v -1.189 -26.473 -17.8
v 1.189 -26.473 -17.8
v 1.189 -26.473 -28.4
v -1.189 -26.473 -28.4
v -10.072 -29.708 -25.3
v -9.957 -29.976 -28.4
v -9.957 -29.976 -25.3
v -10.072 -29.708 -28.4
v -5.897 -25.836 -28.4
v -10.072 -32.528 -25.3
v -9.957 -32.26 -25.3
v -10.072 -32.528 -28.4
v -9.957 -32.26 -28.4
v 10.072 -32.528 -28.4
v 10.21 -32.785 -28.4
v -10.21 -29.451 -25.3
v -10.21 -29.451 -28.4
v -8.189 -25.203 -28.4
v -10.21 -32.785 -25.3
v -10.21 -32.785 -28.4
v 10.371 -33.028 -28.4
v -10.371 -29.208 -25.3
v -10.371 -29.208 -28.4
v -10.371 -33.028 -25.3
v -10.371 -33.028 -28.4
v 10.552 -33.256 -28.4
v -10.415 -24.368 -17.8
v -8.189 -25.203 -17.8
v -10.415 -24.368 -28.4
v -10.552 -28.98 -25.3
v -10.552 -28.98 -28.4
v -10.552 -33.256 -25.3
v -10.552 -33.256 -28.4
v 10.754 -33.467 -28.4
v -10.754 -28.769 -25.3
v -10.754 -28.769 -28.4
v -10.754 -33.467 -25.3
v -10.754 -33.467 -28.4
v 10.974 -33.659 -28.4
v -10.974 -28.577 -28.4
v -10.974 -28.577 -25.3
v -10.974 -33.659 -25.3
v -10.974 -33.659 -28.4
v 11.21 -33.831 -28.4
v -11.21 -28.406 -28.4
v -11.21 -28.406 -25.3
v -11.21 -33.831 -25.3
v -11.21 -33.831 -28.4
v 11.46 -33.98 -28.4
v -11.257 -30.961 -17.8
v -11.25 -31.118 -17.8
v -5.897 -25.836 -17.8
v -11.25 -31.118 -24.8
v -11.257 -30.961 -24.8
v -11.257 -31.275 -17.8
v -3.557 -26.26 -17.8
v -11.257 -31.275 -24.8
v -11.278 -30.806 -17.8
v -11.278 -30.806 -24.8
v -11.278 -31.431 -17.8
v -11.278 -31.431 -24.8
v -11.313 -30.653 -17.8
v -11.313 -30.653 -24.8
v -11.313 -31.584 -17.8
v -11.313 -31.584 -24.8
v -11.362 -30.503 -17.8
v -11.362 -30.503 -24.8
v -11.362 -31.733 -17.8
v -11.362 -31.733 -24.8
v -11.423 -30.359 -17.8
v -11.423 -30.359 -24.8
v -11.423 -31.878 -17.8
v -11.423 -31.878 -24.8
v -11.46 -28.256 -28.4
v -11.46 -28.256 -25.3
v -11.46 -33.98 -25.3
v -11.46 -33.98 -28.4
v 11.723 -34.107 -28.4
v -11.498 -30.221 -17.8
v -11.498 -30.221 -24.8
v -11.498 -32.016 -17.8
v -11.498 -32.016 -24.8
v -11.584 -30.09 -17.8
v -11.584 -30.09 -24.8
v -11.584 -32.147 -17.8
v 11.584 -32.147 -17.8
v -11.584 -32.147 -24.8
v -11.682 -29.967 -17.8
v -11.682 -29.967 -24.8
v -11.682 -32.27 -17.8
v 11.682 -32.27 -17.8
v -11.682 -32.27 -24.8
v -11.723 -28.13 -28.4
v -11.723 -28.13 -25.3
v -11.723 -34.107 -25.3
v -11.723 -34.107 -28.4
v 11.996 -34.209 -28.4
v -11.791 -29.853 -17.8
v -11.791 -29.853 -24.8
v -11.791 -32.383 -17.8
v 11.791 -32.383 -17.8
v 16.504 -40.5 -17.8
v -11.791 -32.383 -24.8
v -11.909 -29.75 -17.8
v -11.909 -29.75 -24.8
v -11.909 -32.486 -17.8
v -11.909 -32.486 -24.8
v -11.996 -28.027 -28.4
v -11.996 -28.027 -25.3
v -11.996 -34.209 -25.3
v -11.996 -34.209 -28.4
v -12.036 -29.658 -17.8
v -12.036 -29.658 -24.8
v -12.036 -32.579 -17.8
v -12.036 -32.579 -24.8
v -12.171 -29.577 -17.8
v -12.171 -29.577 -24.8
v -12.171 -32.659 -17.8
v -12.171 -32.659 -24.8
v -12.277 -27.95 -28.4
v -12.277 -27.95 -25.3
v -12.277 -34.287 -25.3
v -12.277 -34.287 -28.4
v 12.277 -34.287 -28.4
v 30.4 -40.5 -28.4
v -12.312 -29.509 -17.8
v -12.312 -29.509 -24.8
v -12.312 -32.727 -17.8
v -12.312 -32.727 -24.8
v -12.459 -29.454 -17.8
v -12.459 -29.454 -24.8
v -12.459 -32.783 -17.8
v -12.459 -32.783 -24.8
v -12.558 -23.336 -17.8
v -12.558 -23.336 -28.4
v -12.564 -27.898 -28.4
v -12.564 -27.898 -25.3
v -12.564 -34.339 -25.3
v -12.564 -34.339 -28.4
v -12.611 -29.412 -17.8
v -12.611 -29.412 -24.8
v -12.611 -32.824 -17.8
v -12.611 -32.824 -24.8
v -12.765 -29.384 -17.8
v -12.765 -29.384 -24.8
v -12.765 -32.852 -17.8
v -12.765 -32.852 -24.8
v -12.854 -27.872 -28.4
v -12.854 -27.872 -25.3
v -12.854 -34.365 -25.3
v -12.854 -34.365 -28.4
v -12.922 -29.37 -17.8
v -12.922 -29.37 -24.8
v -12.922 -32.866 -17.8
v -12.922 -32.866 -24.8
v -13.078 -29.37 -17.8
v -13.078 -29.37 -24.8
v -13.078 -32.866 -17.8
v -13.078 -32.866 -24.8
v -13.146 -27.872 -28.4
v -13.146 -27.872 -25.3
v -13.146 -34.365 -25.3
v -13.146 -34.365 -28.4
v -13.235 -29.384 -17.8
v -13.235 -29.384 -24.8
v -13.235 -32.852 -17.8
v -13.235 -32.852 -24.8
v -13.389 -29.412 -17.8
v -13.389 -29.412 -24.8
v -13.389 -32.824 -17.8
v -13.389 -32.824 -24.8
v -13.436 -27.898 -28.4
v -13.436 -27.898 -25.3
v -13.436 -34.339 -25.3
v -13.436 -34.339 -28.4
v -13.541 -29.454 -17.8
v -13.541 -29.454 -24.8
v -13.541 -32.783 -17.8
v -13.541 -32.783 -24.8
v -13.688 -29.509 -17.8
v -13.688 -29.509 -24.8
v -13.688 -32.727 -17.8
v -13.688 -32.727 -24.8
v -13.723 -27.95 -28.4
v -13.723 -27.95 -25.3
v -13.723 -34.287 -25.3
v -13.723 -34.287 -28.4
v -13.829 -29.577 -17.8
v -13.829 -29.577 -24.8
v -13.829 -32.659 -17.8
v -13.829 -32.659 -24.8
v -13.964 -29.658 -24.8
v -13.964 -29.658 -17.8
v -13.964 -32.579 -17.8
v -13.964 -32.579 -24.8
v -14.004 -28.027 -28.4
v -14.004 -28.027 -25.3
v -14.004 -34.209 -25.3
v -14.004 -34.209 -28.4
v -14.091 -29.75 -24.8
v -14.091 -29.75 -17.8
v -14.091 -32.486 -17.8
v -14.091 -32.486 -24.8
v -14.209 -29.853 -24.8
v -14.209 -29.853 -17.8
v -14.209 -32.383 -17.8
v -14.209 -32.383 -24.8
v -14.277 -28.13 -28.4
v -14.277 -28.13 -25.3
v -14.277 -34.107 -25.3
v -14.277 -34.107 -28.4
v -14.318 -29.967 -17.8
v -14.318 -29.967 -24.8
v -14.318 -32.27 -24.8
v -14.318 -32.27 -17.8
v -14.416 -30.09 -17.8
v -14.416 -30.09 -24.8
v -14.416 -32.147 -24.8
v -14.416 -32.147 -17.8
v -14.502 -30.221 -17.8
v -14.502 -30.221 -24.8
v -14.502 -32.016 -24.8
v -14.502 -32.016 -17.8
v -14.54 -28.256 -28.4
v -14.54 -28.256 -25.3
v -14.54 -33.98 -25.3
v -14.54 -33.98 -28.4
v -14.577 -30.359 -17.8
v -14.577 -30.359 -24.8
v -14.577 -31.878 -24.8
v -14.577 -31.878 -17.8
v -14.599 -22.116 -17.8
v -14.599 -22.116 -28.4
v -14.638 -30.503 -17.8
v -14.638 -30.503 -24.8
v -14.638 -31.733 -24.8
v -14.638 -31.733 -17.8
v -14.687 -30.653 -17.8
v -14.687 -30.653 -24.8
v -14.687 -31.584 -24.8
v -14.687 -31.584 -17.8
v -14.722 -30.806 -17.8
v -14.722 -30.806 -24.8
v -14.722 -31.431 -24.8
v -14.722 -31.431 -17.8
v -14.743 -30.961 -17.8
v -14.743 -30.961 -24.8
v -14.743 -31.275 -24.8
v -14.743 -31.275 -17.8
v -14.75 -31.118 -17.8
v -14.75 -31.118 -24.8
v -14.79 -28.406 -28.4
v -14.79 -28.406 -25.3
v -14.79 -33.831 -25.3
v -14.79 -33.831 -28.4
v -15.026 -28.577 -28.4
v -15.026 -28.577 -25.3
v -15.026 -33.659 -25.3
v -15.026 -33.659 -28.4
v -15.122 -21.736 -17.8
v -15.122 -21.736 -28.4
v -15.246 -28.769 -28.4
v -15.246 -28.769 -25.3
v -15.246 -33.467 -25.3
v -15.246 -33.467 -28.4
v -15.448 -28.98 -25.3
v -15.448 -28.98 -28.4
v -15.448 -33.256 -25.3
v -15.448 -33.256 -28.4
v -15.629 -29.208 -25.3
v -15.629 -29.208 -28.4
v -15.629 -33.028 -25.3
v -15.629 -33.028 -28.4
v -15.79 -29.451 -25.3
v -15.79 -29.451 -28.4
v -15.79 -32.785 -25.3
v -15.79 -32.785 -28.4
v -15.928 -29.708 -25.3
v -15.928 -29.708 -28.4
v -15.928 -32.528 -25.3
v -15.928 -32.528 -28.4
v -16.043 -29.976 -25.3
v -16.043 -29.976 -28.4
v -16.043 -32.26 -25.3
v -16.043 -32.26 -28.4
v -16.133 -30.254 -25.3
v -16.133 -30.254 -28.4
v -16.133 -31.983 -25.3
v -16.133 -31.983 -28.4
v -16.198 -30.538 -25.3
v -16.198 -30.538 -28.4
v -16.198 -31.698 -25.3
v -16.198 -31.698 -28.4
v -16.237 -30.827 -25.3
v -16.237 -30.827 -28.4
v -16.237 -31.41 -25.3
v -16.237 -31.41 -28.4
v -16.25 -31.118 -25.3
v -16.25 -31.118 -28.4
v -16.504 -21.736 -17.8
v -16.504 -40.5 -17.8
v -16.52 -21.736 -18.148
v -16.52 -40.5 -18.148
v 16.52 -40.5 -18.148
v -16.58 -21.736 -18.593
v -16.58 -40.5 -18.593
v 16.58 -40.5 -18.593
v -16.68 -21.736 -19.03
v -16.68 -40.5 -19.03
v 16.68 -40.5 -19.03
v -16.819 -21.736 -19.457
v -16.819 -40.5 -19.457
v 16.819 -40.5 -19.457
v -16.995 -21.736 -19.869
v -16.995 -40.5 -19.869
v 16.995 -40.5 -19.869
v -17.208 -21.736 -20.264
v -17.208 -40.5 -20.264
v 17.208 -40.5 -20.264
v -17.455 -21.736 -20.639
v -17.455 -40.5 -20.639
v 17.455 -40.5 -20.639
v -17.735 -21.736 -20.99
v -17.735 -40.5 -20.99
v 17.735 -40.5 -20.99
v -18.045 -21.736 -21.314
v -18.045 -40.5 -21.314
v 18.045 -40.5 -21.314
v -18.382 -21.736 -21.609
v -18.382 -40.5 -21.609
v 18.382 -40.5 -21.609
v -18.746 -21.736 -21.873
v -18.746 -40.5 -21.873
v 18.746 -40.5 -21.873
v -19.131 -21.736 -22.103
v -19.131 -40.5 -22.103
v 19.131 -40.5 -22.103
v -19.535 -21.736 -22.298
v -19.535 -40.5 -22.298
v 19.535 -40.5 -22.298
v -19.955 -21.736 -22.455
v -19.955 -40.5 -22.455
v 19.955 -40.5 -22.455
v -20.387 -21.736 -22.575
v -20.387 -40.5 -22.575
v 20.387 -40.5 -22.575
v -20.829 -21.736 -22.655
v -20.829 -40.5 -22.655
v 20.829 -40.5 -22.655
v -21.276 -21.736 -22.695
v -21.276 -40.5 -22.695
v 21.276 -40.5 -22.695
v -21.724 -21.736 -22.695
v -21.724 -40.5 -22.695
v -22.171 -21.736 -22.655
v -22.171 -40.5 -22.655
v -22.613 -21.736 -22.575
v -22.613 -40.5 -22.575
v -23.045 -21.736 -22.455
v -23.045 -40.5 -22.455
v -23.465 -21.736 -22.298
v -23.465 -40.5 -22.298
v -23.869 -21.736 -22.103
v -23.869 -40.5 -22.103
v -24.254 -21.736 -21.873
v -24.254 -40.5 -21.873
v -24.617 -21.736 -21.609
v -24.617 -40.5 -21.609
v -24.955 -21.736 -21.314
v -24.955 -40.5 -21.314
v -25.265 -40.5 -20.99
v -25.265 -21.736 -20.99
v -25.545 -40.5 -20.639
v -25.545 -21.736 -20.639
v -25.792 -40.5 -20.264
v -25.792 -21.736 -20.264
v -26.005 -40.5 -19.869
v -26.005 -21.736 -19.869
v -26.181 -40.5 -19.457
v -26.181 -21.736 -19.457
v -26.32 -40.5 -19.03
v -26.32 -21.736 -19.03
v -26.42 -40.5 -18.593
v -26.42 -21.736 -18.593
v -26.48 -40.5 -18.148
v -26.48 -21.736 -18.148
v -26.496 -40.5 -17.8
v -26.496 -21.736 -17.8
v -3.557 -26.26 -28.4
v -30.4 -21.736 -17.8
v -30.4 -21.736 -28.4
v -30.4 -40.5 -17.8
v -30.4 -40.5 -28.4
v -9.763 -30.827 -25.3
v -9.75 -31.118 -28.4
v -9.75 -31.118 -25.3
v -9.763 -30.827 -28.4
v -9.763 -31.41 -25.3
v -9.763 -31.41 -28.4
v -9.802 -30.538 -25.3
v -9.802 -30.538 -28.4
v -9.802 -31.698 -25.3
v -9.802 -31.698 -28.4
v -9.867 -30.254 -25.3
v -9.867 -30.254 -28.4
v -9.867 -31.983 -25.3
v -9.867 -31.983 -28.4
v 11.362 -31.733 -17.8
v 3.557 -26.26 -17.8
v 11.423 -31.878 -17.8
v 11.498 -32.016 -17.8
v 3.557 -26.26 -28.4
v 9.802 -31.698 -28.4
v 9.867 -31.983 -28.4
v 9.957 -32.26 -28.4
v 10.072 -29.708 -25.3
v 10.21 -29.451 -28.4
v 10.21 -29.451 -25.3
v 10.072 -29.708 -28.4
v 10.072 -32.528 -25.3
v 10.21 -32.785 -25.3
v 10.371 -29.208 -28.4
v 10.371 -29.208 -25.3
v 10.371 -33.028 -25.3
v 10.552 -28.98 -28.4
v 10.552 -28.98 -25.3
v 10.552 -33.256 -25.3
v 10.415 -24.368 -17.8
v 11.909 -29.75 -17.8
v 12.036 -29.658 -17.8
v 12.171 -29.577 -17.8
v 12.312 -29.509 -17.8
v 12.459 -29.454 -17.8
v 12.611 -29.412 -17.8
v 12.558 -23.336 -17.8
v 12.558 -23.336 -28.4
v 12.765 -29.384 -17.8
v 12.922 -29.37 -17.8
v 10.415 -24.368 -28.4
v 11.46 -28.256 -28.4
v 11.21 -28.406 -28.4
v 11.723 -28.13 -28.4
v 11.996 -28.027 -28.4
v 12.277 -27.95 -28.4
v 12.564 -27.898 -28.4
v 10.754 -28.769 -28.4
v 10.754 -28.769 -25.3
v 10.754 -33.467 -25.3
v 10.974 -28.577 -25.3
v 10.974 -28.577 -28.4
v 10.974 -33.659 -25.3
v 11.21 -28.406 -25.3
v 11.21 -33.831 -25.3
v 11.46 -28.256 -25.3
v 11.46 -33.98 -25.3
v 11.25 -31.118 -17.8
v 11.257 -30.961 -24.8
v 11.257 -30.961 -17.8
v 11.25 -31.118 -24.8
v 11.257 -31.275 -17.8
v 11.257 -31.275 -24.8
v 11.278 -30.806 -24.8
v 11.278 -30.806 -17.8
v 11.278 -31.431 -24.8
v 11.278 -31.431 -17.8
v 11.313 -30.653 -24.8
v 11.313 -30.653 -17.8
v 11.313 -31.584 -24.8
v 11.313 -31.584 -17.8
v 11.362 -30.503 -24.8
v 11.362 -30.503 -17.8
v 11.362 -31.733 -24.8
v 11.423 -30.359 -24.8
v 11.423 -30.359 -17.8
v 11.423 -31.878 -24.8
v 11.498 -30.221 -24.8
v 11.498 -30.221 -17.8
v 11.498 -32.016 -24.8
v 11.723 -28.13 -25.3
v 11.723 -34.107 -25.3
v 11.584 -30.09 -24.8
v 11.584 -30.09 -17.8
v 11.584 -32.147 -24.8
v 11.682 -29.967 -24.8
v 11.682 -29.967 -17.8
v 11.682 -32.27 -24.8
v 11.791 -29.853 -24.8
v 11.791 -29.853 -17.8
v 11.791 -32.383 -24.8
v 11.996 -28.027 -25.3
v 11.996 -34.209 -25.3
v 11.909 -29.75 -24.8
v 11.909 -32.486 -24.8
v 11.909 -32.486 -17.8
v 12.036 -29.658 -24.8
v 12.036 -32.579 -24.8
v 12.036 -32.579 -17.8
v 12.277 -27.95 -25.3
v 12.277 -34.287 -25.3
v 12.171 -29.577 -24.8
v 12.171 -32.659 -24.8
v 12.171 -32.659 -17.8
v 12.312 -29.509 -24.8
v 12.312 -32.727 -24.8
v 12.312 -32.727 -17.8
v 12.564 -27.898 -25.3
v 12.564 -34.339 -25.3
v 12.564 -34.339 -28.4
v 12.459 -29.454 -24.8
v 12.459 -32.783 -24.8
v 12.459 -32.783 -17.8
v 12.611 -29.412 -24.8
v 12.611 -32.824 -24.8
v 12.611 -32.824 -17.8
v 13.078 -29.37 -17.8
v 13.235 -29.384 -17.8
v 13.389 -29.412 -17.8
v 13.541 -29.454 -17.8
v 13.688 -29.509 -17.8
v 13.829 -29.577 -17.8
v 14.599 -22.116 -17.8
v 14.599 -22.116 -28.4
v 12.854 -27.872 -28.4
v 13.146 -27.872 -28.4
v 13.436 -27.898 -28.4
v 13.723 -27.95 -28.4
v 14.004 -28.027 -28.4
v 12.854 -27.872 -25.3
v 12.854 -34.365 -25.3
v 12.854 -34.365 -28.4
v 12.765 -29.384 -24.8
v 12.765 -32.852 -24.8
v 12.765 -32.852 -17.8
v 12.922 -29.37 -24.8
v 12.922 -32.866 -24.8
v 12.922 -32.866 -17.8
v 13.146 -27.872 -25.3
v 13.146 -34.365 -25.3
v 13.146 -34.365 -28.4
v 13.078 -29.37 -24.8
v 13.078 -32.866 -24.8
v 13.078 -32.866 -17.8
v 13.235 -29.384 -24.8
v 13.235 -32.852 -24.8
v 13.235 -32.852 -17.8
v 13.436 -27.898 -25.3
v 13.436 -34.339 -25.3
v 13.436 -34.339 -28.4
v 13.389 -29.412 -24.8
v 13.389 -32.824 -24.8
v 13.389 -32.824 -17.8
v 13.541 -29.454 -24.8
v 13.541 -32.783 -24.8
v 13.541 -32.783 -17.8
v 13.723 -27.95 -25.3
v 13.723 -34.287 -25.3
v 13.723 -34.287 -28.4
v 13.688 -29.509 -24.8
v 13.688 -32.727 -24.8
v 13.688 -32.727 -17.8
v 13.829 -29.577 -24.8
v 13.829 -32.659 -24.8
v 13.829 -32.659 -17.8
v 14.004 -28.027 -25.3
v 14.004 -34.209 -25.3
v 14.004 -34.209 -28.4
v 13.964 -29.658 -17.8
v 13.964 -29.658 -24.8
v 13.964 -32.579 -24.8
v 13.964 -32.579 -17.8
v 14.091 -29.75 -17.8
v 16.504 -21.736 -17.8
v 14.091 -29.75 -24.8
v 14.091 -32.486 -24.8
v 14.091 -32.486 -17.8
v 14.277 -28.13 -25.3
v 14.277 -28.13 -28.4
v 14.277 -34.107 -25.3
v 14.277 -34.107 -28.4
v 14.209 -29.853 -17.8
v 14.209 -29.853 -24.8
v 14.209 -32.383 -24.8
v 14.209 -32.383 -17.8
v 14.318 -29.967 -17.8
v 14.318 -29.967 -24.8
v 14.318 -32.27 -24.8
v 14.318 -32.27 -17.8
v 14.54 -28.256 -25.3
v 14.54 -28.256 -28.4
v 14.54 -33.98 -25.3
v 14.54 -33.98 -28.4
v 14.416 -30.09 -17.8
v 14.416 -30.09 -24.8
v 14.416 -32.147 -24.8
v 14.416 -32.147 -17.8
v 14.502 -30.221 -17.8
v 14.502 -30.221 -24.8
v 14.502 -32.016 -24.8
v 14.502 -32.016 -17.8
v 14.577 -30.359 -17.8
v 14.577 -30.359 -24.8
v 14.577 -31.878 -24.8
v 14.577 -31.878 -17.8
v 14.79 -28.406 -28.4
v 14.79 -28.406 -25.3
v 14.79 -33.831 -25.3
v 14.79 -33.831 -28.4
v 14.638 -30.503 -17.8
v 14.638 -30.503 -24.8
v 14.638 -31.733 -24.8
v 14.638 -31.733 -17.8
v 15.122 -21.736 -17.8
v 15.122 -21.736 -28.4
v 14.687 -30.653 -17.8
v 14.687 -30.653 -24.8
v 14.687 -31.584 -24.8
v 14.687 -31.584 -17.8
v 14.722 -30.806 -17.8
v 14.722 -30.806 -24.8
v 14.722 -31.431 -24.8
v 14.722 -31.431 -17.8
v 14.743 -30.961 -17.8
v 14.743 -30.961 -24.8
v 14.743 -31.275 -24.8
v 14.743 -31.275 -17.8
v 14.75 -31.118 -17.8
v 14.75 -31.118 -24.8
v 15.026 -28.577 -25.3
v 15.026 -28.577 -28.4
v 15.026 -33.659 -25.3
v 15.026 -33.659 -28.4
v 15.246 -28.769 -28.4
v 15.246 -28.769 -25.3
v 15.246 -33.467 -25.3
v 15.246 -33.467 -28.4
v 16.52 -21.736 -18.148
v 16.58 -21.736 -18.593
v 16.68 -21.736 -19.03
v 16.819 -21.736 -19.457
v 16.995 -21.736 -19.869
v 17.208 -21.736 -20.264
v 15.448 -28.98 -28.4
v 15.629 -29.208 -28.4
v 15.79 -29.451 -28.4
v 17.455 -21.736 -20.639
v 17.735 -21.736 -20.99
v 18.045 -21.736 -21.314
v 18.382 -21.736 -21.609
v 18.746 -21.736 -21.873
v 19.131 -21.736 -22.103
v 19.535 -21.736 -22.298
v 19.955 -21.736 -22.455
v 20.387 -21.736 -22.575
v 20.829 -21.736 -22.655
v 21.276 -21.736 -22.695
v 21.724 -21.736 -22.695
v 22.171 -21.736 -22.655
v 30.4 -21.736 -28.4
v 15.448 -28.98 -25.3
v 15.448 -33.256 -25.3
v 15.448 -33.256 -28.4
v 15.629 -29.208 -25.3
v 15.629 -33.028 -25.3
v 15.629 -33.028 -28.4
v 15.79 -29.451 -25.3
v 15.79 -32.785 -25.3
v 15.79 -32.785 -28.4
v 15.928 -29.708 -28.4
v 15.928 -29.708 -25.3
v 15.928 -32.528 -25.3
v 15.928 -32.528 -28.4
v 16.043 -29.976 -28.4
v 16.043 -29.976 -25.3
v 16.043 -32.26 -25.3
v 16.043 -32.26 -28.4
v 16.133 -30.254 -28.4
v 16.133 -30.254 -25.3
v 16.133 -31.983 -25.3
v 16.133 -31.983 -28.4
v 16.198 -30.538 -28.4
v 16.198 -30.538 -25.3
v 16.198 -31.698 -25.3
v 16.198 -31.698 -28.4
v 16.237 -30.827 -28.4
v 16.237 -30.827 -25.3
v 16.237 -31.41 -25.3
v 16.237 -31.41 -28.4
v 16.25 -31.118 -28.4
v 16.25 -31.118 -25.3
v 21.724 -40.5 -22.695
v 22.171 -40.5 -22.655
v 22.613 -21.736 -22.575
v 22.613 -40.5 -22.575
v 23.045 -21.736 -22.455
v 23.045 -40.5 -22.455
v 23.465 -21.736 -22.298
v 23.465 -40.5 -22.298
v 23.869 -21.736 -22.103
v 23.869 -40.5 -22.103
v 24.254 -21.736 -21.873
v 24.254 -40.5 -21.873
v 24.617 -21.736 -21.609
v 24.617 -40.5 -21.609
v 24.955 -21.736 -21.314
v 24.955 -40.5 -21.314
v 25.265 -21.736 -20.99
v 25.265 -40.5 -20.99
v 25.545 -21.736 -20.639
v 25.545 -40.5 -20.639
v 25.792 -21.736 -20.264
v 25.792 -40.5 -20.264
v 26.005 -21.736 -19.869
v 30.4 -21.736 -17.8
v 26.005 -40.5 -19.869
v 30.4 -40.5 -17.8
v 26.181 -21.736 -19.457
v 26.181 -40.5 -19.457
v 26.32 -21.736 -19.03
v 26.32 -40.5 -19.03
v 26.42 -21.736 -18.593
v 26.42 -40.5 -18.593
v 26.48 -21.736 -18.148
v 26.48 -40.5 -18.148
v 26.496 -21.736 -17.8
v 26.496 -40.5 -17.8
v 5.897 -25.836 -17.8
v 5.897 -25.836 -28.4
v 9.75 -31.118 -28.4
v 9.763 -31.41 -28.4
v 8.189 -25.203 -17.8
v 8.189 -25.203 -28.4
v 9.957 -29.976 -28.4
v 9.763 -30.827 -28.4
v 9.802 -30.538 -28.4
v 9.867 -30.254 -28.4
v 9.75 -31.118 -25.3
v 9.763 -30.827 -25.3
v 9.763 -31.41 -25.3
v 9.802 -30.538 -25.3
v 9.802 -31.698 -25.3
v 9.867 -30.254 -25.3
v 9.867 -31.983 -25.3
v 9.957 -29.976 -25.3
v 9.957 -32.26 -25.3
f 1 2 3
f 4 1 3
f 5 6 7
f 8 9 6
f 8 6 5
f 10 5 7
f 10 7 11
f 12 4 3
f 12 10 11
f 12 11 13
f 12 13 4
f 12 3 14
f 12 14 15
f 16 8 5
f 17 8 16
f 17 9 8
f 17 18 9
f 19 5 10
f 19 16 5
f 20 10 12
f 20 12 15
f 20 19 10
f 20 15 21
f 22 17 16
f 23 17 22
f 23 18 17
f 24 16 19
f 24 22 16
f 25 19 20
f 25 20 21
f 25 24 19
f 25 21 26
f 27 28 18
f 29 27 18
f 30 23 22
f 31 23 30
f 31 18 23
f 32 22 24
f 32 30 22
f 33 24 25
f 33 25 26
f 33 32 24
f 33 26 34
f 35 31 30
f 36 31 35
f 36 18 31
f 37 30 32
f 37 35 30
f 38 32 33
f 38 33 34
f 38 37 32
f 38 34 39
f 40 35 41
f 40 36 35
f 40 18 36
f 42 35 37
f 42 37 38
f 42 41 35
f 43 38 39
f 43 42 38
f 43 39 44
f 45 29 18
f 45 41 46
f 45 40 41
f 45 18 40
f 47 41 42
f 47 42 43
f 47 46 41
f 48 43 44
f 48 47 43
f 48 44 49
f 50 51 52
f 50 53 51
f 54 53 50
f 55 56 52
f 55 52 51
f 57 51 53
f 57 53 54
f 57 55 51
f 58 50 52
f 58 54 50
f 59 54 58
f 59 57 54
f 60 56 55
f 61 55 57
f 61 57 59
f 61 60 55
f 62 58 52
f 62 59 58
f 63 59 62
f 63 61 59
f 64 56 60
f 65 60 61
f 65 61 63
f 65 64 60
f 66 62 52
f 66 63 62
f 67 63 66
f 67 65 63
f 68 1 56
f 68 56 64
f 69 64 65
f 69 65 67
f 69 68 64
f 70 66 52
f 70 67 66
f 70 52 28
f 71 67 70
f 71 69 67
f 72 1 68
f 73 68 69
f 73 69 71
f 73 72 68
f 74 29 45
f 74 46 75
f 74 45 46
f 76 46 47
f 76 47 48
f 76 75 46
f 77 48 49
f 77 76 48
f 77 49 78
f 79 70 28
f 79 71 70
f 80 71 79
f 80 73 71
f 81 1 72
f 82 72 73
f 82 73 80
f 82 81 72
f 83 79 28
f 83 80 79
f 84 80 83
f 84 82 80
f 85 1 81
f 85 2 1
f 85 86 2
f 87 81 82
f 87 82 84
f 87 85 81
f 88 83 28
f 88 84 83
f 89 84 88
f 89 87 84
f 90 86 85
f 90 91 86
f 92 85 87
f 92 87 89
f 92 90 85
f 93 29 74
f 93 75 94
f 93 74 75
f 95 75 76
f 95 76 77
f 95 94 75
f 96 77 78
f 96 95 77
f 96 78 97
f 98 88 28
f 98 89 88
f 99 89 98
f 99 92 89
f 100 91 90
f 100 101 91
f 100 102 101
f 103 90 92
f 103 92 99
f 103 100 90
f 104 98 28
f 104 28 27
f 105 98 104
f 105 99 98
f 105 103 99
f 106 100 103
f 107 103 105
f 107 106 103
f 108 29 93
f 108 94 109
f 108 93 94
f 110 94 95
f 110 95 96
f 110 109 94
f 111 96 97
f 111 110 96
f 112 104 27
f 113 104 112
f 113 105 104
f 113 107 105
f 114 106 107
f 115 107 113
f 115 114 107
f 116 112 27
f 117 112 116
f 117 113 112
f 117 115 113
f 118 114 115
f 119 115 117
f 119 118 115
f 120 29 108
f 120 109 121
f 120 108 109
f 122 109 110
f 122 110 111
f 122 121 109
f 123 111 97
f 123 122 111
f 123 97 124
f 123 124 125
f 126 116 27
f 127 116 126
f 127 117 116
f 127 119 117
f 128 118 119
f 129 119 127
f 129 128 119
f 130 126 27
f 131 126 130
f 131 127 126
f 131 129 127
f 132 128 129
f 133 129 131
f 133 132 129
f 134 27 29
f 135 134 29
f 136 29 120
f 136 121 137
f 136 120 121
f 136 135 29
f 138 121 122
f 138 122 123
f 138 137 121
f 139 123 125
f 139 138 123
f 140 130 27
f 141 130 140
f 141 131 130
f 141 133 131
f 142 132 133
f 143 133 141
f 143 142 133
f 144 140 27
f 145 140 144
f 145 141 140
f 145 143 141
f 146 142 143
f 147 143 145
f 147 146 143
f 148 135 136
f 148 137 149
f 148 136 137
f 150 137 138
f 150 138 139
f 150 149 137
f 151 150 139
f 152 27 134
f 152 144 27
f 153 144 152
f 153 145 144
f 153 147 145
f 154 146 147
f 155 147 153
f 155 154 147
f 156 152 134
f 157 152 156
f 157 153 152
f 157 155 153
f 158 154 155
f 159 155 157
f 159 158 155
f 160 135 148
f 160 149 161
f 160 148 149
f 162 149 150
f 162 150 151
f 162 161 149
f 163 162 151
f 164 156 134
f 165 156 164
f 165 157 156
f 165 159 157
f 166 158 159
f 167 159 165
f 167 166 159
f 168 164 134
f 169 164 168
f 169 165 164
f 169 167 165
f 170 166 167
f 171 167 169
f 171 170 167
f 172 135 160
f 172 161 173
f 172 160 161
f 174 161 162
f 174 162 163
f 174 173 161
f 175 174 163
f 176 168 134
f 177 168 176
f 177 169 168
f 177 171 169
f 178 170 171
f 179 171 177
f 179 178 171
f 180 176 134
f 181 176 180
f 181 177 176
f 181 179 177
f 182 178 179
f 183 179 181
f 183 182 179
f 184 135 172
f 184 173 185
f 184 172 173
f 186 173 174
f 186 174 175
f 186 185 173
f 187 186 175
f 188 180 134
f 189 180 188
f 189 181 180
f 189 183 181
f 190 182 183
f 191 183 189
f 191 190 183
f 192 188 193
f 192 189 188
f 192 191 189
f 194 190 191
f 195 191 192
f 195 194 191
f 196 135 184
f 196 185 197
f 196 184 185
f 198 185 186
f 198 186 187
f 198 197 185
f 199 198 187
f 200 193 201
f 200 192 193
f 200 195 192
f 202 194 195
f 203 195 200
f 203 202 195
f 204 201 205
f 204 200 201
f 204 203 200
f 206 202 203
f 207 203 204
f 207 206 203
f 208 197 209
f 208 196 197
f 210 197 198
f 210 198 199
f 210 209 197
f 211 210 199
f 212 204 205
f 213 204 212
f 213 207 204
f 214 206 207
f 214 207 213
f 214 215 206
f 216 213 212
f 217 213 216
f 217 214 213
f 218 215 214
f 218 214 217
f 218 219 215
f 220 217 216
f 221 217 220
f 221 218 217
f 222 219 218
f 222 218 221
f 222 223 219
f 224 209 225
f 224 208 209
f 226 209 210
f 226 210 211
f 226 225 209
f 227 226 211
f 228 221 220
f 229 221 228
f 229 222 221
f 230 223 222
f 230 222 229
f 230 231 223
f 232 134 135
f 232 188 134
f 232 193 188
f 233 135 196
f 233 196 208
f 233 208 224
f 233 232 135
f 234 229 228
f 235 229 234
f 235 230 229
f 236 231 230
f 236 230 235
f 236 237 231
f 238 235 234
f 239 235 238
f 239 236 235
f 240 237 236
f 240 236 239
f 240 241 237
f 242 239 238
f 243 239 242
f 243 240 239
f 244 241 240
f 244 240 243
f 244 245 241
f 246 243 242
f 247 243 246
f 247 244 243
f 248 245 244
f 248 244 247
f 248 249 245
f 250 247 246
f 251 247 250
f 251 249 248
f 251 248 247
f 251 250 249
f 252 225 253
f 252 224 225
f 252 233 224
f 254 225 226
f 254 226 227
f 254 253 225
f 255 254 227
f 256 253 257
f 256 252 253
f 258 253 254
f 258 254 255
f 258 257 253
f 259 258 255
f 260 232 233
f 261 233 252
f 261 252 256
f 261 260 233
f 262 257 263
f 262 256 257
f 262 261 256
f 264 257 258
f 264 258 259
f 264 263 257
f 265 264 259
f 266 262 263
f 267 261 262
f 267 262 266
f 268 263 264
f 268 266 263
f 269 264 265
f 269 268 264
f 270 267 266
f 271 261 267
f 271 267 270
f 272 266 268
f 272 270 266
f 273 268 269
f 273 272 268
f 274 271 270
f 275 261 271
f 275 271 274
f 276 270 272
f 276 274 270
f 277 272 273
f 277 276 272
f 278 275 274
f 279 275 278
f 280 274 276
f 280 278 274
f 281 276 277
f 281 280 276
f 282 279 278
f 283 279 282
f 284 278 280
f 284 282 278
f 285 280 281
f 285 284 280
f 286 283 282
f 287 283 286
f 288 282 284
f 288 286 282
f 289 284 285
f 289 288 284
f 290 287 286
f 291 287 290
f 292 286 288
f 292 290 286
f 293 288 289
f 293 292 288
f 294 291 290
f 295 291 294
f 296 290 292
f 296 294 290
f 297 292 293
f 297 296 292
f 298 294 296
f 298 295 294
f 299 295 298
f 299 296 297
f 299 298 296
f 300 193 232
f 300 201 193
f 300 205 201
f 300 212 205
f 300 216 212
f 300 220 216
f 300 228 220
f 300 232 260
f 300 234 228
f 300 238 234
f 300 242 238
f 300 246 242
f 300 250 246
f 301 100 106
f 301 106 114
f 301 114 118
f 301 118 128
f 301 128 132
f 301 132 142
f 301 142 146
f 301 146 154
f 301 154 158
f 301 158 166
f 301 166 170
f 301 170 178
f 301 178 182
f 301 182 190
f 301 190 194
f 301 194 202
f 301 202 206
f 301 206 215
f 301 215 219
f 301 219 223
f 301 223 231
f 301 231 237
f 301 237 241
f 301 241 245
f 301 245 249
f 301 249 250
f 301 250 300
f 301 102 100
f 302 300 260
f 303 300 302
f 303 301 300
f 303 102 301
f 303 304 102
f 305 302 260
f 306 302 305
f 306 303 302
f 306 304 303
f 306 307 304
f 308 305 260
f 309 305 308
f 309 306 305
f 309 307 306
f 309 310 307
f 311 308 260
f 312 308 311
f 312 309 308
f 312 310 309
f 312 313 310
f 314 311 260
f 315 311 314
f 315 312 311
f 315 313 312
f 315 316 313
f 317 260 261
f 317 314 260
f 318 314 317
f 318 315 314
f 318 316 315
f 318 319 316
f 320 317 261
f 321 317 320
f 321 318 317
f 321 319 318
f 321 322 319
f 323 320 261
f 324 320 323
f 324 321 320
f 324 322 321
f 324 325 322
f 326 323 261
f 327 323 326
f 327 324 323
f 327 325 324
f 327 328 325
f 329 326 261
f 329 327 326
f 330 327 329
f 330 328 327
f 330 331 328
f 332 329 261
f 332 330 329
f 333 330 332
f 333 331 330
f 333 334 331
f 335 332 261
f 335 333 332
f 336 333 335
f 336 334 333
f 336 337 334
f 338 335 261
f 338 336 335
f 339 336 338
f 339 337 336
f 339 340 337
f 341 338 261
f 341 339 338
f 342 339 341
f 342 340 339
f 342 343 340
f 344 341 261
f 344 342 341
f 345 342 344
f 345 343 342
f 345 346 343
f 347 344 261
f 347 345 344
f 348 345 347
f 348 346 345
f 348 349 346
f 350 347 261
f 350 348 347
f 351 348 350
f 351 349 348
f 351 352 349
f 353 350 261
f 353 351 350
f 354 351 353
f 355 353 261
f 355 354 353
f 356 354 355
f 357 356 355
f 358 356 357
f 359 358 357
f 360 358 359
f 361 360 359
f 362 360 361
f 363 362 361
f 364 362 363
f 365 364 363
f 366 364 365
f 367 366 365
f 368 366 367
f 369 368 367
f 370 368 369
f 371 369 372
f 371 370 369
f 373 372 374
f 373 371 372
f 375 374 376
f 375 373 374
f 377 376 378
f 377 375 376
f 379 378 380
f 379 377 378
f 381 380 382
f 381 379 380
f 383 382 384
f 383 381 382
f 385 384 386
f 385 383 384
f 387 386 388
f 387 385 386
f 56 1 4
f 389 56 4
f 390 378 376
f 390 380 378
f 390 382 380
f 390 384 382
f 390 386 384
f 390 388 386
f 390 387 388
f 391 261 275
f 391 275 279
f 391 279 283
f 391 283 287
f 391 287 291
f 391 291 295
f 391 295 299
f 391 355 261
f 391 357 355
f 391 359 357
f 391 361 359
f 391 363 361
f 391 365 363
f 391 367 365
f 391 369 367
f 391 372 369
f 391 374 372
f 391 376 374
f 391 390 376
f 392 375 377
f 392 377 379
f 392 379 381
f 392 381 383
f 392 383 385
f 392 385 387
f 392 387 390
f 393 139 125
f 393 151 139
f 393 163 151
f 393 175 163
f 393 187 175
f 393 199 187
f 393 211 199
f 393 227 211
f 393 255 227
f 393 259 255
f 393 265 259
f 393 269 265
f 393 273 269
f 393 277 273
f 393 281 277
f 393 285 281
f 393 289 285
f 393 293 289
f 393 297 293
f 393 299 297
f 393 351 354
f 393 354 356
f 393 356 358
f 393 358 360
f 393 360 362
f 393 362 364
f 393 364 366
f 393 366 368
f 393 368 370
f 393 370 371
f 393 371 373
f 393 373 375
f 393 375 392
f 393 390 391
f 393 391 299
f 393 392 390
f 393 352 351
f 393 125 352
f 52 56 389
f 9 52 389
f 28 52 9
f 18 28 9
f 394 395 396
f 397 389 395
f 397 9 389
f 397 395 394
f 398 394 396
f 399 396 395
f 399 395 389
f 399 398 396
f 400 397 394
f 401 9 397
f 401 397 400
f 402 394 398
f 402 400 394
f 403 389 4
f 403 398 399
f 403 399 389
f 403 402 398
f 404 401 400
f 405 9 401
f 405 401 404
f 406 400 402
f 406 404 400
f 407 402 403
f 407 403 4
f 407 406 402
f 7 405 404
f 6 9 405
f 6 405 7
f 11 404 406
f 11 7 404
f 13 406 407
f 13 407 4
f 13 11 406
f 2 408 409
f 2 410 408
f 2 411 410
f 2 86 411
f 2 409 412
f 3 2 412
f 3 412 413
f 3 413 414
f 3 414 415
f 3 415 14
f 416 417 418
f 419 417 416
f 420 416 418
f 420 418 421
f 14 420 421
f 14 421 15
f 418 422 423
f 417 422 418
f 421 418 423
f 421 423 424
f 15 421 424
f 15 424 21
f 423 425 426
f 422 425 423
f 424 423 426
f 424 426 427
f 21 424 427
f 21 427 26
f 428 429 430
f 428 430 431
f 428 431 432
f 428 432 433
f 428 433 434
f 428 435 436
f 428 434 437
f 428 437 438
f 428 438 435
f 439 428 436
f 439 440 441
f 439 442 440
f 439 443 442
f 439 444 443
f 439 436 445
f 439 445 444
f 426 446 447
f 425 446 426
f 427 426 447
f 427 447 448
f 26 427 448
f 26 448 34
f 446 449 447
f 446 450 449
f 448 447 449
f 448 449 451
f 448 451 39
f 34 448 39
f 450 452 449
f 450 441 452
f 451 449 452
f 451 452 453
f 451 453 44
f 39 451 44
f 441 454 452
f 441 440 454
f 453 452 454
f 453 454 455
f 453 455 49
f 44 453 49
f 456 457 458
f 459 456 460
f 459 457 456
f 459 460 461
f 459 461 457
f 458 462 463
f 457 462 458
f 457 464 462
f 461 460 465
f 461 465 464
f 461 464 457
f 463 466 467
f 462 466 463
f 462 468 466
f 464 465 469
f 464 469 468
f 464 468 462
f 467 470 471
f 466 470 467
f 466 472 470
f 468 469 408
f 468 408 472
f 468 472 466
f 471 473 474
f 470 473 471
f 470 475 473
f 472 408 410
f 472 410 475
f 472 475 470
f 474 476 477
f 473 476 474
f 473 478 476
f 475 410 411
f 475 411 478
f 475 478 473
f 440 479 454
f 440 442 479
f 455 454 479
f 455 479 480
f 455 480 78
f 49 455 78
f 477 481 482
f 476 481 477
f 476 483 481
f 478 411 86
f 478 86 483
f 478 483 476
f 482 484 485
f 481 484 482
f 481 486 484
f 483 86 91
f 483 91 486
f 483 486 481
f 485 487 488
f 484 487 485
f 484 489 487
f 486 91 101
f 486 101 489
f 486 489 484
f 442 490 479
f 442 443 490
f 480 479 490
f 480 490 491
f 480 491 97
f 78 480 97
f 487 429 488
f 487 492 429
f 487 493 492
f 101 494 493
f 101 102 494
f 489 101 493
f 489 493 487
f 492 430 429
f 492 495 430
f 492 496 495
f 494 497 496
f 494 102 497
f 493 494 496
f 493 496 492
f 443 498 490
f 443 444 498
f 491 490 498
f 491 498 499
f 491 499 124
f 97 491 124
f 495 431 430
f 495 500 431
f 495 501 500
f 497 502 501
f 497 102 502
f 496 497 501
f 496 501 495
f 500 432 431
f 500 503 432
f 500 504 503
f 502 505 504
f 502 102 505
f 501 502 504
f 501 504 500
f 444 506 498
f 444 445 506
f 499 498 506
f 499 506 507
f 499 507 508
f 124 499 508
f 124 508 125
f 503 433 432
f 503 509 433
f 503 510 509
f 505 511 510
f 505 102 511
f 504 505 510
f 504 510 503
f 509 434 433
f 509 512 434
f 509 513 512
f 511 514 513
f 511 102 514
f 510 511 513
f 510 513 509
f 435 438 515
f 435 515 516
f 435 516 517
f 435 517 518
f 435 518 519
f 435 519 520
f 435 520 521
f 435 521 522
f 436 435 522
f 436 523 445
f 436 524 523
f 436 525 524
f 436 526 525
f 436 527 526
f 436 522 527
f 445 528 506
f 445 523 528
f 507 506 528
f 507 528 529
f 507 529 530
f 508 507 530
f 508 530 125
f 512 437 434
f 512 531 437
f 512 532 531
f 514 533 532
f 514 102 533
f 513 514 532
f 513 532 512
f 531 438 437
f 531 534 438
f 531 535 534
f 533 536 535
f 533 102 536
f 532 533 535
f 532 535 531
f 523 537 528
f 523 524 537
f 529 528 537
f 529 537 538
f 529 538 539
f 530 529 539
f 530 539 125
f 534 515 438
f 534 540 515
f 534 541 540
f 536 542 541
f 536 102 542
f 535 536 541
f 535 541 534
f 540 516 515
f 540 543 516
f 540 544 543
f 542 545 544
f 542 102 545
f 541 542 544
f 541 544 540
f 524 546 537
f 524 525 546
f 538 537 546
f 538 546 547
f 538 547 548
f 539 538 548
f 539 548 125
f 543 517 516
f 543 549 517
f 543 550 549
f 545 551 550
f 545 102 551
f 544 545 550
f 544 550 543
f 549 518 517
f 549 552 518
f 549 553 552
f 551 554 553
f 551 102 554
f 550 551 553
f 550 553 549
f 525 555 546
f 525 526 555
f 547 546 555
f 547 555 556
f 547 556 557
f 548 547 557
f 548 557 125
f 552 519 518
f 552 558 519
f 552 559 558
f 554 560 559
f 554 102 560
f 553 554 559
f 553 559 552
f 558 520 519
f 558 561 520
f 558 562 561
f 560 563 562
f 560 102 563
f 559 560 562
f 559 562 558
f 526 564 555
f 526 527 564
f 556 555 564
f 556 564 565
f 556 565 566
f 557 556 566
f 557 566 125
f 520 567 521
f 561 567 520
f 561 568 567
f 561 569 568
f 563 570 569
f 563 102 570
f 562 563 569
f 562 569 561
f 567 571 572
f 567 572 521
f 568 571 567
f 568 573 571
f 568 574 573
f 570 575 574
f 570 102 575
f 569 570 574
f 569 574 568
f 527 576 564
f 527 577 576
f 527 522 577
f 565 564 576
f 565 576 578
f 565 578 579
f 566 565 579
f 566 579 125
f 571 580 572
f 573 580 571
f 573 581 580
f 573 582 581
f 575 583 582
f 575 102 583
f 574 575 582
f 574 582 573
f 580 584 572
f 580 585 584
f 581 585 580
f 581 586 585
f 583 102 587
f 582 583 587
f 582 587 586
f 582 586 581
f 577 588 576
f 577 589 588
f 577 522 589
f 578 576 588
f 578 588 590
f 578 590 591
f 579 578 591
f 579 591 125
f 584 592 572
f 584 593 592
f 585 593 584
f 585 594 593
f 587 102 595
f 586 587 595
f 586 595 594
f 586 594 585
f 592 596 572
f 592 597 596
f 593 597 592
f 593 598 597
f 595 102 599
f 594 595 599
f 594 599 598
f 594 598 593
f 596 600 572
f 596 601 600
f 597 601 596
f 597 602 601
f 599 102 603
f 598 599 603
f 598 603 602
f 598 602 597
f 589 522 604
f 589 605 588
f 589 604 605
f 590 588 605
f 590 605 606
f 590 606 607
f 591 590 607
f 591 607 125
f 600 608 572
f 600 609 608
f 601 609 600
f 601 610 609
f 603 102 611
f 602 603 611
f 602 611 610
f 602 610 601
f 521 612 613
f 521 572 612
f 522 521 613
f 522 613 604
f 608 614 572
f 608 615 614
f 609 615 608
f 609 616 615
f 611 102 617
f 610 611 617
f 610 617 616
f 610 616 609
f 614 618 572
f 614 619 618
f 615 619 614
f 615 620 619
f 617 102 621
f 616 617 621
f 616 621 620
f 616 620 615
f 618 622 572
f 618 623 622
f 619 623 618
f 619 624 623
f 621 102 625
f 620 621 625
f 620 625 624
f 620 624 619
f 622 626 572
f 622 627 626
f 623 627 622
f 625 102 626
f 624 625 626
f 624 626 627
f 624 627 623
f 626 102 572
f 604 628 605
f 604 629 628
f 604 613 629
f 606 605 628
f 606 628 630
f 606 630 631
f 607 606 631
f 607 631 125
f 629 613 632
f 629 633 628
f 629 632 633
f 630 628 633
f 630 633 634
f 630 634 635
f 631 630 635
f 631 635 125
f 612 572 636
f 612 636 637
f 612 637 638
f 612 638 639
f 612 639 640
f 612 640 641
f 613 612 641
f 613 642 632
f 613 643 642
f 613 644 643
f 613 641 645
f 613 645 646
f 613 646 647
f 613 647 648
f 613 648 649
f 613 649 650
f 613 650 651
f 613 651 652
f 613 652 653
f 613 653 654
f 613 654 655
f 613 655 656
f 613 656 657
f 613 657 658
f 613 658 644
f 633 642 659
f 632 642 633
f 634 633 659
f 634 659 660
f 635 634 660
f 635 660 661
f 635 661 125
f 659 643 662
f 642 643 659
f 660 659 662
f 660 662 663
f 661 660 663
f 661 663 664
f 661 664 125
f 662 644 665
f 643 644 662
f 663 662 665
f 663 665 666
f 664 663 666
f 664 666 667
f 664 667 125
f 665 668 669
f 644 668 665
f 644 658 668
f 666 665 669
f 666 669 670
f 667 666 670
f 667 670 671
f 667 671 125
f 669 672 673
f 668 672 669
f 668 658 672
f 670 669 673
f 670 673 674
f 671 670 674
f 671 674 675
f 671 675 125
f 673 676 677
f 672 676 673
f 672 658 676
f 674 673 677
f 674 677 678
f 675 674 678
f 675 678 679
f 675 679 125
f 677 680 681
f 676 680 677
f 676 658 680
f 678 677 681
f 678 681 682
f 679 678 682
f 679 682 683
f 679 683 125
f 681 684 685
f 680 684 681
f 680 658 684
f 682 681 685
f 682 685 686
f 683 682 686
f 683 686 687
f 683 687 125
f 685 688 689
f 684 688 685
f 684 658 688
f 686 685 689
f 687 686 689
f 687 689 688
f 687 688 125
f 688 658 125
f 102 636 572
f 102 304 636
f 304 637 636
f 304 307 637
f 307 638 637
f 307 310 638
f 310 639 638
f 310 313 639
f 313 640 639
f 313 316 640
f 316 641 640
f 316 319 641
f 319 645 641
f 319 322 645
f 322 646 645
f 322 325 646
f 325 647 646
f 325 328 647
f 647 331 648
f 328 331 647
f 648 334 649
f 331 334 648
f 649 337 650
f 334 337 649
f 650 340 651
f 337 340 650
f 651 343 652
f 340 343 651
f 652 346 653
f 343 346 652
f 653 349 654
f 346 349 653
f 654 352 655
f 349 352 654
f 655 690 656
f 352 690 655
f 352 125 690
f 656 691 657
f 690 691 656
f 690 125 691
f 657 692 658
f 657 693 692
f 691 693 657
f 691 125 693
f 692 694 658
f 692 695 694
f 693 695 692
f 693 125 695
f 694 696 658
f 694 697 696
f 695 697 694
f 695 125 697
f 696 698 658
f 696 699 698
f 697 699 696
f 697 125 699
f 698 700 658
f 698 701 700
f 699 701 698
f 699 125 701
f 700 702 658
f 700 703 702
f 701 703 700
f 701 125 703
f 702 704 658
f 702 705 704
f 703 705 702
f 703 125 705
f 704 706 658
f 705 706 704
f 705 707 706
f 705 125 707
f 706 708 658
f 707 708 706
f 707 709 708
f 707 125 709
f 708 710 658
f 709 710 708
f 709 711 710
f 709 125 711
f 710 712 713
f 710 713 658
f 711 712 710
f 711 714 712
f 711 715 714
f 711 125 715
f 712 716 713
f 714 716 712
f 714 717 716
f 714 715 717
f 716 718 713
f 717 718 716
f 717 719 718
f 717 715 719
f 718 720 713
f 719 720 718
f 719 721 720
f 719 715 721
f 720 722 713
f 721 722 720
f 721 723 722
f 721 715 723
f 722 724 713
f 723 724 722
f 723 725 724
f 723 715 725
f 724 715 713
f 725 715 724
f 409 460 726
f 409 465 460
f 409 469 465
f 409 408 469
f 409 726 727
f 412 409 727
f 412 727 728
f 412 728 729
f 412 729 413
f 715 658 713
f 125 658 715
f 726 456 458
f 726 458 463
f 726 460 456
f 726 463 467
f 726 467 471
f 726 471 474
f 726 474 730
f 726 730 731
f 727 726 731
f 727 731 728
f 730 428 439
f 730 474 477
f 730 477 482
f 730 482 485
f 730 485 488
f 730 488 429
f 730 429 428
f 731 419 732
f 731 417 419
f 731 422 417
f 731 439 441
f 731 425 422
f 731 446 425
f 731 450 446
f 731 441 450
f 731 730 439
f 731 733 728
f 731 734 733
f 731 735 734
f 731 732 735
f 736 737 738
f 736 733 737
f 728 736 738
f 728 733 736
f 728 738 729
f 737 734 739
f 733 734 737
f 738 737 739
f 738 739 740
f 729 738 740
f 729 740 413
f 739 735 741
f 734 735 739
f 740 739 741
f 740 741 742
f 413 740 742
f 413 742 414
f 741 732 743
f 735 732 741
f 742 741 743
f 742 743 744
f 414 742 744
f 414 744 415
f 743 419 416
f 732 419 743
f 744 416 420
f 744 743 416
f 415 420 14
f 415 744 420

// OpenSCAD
// file: ../605zz.scad
module 605zz() {
	difference(){
		cylinder(d=14, h=5);
		cylinder(d=11, h=5);
	}
	difference(){
		cylinder(d=7, h=5);
		cylinder(d=5, h=5);
	}

	translate([0,0,0.25])
	difference(){
		cylinder(d=11, h=4.5);
		cylinder(d=7, h=4.5);
	}
}
// file: ../hose_fixator.scad
include <../configuration.scad>

hose_fixator();

hose_fixator_length = 15;

module hose_fixator() {
	$fn = 75;

	// Length
	h=hose_fixator_length;

	//Radius
	d_hose = 9;
	hose_wall = 1.5; 
	hose_fitting_delta_d = 0.2;
	r=d_hose/2-hose_wall+hose_fitting_delta_d/2; 

	//wall thickness
	th=0.45*3; 

	difference(){
		cylinder(r=r, h=h);
		cylinder(r=r-th, h=h);
	}
}
// file: ../../configuration.scad
// Created by Phisik on 2018-12-16
// Main settings header for peristaltic pump

// Licence GPL

// some extra gap for clean difference render in preview
eps = 0.1;

// Part smoothness, the more the better
$fn = 100;

layer_height = 0.25;

// Silicon hose settings
//====================================================================================

// NB! The larger the hose radius the higher torque is required
r_hose = 22;        // radius of hose center line
                    // Update: after addition of groove hose center is at r_hose + hose_groove
d_hose = 9;         // hose diameter

hose_wall = 1.5;   // hose wall thickness
					// NB! hose_wall affects both stator & rotor geometry
					
hose_clearance = 0.2;   // extra clearance between hose & bearings
						// NB! hose_clearance affects only rotor geometry
						// If you experience lack of suction reduce hose_clearance 
						// If motor misses steps increase hose_clearance, take motor with higher 
						// torque or hose with thinner wall

hose_fitting_delta_d = 1; // difference between hose and hose fitting diameter
						
						
// Stator settings
//====================================================================================
wall = 4;             // wall thickness, should be larger than hose_groove by 1mm or more
hose_groove = 0;     // NB! Rudiment form v1. Do not change. 
					 // groove depth for hose to stay in place 

h_base = 4;             // height of stator base
h_support_base = 2;		// height of support base

stator_support_gap = 1;		// gap between support & stator base for spring tension

stator_facet = 10;   // facets of outer support corners

mount_width  = 8;
mount_length = 10;

d_screw = 3.5;           // screw diameter
d_nut = 6.5;             // nut & screw head diameter
d_nut_tight = 5.5/0.87; // nut diameter for nuts to be fitted with soldering iron

l_handle = 10;

r_water_sink = 5.5;

need_nut_cuts_in_support = 0; // cut holes for nuts in support
need_nut_cuts_in_stator  = 1; // cut holes for support nut in stator

hose_fixator_length = 15;  // length of hose inset for fixing it on the stator


// Bearing settings
//====================================================================================
bearingNum = 3;     // Number of bearings per arm

h_bearing = 5;      // bearing height
d_bearing = 14;     // OD
d_bearing_axis = 5;         // ID
w_axis = 1;         // thickness of inner bushing



// Rotor settings
//==================================================================================== 
d_rotor = 17.5;   // Outer rotor diameter

arm_num = 3;    // number of rotor arms
w_arm  = 15;    // arm width
h_arm = 3;      // arm height

enable_hose_guides = 1;
w_hose_guide = 8;
hose_guide_clearance = 0.75;
r_hose_guide_facet = 2;

gap = 0.2;      // some clearance between joins & moving parts

arm_clearance = 4;  // clearance between arm and stator

bearing_axes_clearance = 0.075;  	     // clearance on rotor base between bearings and axes
rotor_bearing_axes_clearance = 0.3;  // clearance on rotor cap between axes and holes
bearing_clearance = 1; 				 // distance from stator base to the lowest arms

// 1602 lcd settings
//====================================================================================
y_lcd_hole = 31;
x_lcd_hole = 75;
d_lcd_hole = 3;

l_lcd_plate = 80;
w_lcd_plate = 36.11;
h_lcd_plate = 1.6;

l_lcd = 71.5;
w_lcd = 24.5;
h_lcd = 8.75;

x_lcd_shift = -0.1;
y_lcd_shift = +0.75;

l_lcd_i2c = 42;
w_lcd_i2c = 19;
h_lcd_i2c = 1.5;


// Nema 17 settings
//====================================================================================
nema_screw_distance = 31;  
nema_shaft_diameter = 5.5;
nema_shaft_height = 25;
nema_knob_diameter = 23;
nema_knob_height = 2.5;
nema_width = 42.3;
nema_angle_cut = 4;
// main file
include <../pump-v3.scad>
assemble = 0;
halfcut = 0;
moved_apart = 0;
partNum = 3;
